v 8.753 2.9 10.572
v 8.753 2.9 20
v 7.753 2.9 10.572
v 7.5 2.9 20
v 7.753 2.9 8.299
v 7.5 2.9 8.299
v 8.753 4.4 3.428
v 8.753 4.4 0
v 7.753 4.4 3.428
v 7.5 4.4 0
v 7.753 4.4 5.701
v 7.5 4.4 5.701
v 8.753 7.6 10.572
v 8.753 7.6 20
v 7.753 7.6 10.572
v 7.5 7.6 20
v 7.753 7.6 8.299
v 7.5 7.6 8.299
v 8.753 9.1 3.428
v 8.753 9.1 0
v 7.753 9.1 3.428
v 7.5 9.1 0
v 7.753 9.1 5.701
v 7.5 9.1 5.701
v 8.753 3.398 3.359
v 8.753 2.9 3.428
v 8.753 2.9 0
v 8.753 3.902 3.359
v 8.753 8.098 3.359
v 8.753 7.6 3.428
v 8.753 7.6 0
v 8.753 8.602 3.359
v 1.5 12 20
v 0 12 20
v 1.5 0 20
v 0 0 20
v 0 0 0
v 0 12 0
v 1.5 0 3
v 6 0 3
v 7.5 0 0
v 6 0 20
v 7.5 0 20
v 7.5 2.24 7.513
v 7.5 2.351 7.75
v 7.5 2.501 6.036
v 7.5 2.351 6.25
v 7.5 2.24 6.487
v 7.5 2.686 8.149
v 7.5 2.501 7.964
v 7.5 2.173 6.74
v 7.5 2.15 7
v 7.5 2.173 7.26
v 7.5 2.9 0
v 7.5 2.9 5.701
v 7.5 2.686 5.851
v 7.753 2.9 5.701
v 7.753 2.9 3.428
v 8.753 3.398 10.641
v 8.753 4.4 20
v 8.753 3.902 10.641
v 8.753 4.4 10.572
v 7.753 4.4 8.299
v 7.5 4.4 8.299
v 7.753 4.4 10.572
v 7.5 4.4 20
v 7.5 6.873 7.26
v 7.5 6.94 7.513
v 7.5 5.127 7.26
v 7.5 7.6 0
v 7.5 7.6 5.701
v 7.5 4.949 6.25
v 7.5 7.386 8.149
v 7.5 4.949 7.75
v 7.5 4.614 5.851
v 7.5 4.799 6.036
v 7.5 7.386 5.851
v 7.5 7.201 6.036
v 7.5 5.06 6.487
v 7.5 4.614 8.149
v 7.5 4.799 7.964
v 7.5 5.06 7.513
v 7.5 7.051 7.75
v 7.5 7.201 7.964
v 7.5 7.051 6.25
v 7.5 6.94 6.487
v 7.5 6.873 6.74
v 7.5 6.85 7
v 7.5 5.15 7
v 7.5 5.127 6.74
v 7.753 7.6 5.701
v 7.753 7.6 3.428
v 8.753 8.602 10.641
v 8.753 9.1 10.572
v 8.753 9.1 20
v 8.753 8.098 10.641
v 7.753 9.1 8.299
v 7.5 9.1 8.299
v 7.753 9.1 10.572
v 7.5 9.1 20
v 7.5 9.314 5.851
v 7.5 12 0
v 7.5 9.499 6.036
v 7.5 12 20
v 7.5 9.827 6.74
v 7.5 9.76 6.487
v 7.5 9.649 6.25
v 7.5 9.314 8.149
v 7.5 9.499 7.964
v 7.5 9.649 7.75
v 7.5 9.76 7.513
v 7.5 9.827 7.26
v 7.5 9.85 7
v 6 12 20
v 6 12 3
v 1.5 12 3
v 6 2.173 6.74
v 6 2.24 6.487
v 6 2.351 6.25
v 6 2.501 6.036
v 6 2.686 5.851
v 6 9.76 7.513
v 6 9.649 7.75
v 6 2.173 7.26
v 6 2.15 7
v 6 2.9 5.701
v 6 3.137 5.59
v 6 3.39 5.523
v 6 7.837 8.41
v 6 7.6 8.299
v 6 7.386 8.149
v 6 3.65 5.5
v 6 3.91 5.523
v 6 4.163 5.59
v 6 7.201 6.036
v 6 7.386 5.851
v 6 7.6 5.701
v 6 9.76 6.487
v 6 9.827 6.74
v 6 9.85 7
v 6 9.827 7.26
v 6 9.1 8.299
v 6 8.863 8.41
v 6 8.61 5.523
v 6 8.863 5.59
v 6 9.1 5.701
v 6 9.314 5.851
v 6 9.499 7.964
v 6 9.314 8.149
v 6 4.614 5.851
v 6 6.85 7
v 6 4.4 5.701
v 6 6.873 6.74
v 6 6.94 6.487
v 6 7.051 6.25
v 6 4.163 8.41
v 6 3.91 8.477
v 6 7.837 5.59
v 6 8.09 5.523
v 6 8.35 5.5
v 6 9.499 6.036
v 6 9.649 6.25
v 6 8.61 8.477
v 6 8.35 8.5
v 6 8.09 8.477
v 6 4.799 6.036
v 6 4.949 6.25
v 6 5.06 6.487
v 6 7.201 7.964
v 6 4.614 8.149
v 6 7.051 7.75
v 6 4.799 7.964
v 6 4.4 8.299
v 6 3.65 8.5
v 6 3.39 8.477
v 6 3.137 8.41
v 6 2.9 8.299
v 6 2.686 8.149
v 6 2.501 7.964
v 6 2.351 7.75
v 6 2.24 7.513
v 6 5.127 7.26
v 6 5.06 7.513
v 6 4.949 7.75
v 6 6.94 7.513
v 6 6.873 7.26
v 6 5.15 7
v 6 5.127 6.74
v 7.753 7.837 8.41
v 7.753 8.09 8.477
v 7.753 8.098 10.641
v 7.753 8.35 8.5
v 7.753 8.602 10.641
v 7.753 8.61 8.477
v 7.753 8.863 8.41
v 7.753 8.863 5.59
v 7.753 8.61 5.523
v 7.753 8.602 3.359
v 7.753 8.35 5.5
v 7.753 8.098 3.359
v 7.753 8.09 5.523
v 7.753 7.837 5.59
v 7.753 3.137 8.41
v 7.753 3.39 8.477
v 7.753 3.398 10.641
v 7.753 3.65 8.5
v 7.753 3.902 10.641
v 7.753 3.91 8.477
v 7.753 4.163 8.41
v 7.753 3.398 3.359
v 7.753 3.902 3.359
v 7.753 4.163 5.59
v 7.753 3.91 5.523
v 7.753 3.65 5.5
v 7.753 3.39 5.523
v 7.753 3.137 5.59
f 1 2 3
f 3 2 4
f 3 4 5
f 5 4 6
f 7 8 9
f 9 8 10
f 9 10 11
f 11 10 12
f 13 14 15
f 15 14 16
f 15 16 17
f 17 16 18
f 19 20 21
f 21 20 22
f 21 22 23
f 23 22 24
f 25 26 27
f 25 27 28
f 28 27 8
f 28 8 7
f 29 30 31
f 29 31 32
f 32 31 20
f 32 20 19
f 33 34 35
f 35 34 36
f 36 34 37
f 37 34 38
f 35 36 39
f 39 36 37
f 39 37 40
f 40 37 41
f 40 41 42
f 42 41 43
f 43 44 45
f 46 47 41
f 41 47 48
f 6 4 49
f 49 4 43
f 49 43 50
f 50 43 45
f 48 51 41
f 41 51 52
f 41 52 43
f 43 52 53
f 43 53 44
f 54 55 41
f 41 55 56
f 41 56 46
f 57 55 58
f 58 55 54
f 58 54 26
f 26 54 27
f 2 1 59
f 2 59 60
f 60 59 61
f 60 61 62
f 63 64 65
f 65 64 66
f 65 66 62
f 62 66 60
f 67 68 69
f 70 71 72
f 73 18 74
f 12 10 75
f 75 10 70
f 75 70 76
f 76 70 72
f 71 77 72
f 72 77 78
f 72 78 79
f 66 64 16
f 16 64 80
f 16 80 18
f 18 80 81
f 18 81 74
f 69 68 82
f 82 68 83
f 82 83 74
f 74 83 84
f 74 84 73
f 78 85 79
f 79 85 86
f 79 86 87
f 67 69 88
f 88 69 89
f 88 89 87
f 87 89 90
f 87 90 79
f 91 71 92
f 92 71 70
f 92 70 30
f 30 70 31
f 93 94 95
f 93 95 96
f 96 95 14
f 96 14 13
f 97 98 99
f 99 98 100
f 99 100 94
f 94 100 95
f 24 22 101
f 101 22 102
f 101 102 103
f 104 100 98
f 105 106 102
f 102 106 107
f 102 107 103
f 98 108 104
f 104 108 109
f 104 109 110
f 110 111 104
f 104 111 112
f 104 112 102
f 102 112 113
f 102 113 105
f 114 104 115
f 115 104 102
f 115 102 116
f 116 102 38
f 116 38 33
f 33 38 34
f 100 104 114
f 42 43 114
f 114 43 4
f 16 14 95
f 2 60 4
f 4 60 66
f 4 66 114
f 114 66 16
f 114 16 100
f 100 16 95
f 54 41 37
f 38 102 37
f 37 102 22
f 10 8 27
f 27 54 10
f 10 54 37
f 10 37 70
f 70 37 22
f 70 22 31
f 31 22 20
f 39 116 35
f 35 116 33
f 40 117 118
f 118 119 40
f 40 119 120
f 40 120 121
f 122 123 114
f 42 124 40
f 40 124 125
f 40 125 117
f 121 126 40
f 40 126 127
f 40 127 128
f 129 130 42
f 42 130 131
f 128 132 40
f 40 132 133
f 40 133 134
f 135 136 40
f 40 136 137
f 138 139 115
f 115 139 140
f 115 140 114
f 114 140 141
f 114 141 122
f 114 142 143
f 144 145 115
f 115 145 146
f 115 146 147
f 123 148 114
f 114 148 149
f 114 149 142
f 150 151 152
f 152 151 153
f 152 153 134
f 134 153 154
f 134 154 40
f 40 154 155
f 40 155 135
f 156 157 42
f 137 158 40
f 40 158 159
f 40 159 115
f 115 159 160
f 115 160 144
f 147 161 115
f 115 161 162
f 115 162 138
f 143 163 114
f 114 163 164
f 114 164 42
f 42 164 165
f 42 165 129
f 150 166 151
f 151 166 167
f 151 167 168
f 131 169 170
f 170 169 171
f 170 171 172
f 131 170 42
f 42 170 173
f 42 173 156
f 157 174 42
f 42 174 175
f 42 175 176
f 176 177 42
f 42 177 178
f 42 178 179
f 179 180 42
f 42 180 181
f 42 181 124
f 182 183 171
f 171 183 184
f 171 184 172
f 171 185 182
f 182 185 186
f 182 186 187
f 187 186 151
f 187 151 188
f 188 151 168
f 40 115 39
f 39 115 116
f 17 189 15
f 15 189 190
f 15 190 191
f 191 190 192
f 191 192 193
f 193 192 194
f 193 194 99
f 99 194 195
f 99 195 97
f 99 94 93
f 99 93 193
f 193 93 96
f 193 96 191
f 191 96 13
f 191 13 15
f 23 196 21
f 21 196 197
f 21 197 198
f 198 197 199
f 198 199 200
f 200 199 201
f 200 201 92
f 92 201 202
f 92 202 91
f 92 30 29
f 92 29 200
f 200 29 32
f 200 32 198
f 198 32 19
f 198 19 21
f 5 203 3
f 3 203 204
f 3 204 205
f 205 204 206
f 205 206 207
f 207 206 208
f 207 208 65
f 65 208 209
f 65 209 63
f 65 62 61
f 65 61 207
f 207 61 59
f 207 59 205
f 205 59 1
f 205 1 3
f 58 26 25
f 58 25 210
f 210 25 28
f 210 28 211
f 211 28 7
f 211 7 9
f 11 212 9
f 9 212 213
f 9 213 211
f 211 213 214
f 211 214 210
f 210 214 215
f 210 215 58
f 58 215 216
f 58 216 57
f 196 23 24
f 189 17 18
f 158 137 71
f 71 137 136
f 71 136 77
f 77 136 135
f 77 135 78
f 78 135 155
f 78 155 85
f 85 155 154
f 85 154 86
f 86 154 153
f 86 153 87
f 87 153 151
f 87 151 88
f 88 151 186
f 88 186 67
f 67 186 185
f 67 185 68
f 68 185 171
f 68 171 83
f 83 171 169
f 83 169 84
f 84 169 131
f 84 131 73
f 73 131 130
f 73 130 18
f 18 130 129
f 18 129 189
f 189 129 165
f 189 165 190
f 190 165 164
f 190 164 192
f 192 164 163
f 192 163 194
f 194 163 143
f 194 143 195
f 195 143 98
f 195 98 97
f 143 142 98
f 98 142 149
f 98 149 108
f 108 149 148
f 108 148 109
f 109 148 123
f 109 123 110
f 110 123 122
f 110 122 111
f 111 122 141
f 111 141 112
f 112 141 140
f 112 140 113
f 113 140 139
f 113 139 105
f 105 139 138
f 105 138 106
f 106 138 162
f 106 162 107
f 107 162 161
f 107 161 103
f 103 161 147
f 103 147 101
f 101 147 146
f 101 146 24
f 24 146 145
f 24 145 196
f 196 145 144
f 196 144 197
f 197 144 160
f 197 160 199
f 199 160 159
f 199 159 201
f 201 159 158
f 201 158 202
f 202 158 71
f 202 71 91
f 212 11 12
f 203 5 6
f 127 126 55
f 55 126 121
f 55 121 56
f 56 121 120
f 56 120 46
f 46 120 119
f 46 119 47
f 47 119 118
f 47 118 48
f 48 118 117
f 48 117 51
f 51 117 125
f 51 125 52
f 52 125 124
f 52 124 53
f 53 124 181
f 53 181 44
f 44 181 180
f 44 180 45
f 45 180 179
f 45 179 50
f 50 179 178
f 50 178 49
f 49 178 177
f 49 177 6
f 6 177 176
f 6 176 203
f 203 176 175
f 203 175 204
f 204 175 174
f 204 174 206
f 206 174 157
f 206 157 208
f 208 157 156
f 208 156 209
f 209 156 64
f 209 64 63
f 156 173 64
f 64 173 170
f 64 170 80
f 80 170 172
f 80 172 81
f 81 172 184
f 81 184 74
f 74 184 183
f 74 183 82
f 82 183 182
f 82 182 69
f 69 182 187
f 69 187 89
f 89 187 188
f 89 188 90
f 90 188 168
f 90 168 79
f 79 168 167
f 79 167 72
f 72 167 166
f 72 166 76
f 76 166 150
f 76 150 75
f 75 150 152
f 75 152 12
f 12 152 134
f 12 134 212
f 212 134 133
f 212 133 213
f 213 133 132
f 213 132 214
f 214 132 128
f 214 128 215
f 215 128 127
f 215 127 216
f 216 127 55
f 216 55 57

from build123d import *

# Parameters (mm, degrees)
BOSS_EXTRUDE1_DEPTH = 20
SKETCH2_W           = 4.5
SKETCH2_H           = 12
CUT_EXTRUDE1_DEPTH  = 17
SKETCH3_R           = 1.5
CUT_EXTRUDE2_DEPTH  = 1
SKETCH3_3_R         = 1.5
CUT_EXTRUDE3_DEPTH  = 7.253189388


with BuildPart() as part:
    # Sketch1 → Boss-Extrude1 (new body)
    with BuildSketch(Plane.XY):
        Polygon((7.5, 9.1), (8.753189388, 9.1), (8.753189388, 7.6), (7.5, 7.6), (7.5, 4.4), (8.753189388, 4.4), (8.753189388, 2.9), (7.5, 2.9), (7.5, 0), (0, 0), (0, 12), (7.5, 12), align=None)
    extrude(amount=BOSS_EXTRUDE1_DEPTH)

    # Sketch2 → Cut-Extrude1 (cut)
    with BuildSketch(Plane.XY.offset(20)):
        with Locations((3.75, 6)):
            Rectangle(SKETCH2_W, SKETCH2_H)
    extrude(amount=-CUT_EXTRUDE1_DEPTH, mode=Mode.SUBTRACT)

    # Sketch3 → Cut-Extrude2 (cut)
    # profile 1 of 6: a face of its own
    with BuildSketch(Plane(origin=(8.753189388, 0, 0), x_dir=(0, 0, -1), z_dir=(1, 0, 0))):
        with BuildLine():
            Line((-5.700961894, 7.6), (-3.42788578, 7.6))
            ThreePointArc((-3.42788578, 7.6), (-3.35, 8.35), (-3.42788578, 9.1))
            Line((-3.42788578, 9.1), (-5.700961894, 9.1))
            ThreePointArc((-5.700961894, 9.1), (-5.551111261, 8.738228568), (-5.5, 8.35))
            ThreePointArc((-5.5, 8.35), (-5.551111261, 7.961771432), (-5.700961894, 7.6))
        make_face()
    # profile 2 of 6: a face of its own
    with BuildSketch(Plane(origin=(8.753189388, 0, 0), x_dir=(0, 0, -1), z_dir=(1, 0, 0))):
        with BuildLine():
            ThreePointArc((-10.57211422, 9.1), (-10.65, 8.35), (-10.57211422, 7.6))
            Line((-10.57211422, 7.6), (-8.299038106, 7.6))
            ThreePointArc((-8.299038106, 7.6), (-8.5, 8.35), (-8.299038106, 9.1))
            Line((-8.299038106, 9.1), (-10.57211422, 9.1))
        make_face()
    # profile 3 of 6: a face of its own
    with BuildSketch(Plane(origin=(8.753189388, 0, 0), x_dir=(0, 0, -1), z_dir=(1, 0, 0))):
        with BuildLine():
            ThreePointArc((-9.792848009, 6), (-7, 0), (-4.207151991, 6))
            ThreePointArc((-4.207151991, 6), (-3.718508564, 6.751777876), (-3.42788578, 7.6))
            Line((-3.42788578, 7.6), (-5.700961894, 7.6))
            ThreePointArc((-5.700961894, 7.6), (-7, 6.85), (-8.299038106, 7.6))
            Line((-8.299038106, 7.6), (-10.57211422, 7.6))
            ThreePointArc((-10.57211422, 7.6), (-10.281491436, 6.751777876), (-9.792848009, 6))
        make_face()
        with Locations((-7, 3.65)):
            Circle(SKETCH3_R, mode=Mode.SUBTRACT)
    # profile 4 of 6: a face of its own
    with BuildSketch(Plane(origin=(8.753189388, 0, 0), x_dir=(0, 0, -1), z_dir=(1, 0, 0))):
        with BuildLine():
            Line((-5.700961894, 9.1), (-3.42788578, 9.1))
            ThreePointArc((-3.42788578, 9.1), (-7, 12), (-10.57211422, 9.1))
            Line((-10.57211422, 9.1), (-8.299038106, 9.1))
            ThreePointArc((-8.299038106, 9.1), (-7, 9.85), (-5.700961894, 9.1))
        make_face()
    # profile 5 of 6: a face of its own
    with BuildSketch(Plane(origin=(8.753189388, 0, 0), x_dir=(0, 0, -1), z_dir=(1, 0, 0))):
        with BuildLine():
            Line((-5.700961894, 7.6), (-3.42788578, 7.6))
            ThreePointArc((-3.42788578, 7.6), (-3.35, 8.35), (-3.42788578, 9.1))
            Line((-3.42788578, 9.1), (-5.700961894, 9.1))
            ThreePointArc((-5.700961894, 9.1), (-5.551111261, 8.738228568), (-5.5, 8.35))
            ThreePointArc((-5.5, 8.35), (-5.551111261, 7.961771432), (-5.700961894, 7.6))
        make_face()
    # profile 6 of 6: a face of its own
    with BuildSketch(Plane(origin=(8.753189388, 0, 0), x_dir=(0, 0, -1), z_dir=(1, 0, 0))):
        with BuildLine():
            ThreePointArc((-10.57211422, 9.1), (-10.65, 8.35), (-10.57211422, 7.6))
            Line((-10.57211422, 7.6), (-8.299038106, 7.6))
            ThreePointArc((-8.299038106, 7.6), (-8.5, 8.35), (-8.299038106, 9.1))
            Line((-8.299038106, 9.1), (-10.57211422, 9.1))
        make_face()
    extrude(amount=-CUT_EXTRUDE2_DEPTH, mode=Mode.SUBTRACT)

    # Sketch3<3> → Cut-Extrude3 (cut)
    with BuildSketch(Plane(origin=(8.753189388, 0, 0), x_dir=(0, 0, -1), z_dir=(1, 0, 0))):
        with BuildLine():
            Line((-8.299038106, 7.6), (-5.700961894, 7.6))
            ThreePointArc((-5.700961894, 7.6), (-5.551111261, 7.961771432), (-5.5, 8.35))
            ThreePointArc((-5.5, 8.35), (-5.551111261, 8.738228568), (-5.700961894, 9.1))
            Line((-5.700961894, 9.1), (-8.299038106, 9.1))
            ThreePointArc((-8.299038106, 9.1), (-8.5, 8.35), (-8.299038106, 7.6))
        make_face()
        with BuildLine():
            ThreePointArc((-8.299038106, 7.6), (-7, 6.85), (-5.700961894, 7.6))
            Line((-5.700961894, 7.6), (-8.299038106, 7.6))
        make_face()
        with BuildLine():
            Line((-8.299038106, 9.1), (-5.700961894, 9.1))
            ThreePointArc((-5.700961894, 9.1), (-7, 9.85), (-8.299038106, 9.1))
        make_face()
        with Locations(Location((-7, 3.65, 0), (0, 0, 30))):
            Circle(SKETCH3_3_R)
    extrude(amount=-CUT_EXTRUDE3_DEPTH, mode=Mode.SUBTRACT)


solid = part.part
